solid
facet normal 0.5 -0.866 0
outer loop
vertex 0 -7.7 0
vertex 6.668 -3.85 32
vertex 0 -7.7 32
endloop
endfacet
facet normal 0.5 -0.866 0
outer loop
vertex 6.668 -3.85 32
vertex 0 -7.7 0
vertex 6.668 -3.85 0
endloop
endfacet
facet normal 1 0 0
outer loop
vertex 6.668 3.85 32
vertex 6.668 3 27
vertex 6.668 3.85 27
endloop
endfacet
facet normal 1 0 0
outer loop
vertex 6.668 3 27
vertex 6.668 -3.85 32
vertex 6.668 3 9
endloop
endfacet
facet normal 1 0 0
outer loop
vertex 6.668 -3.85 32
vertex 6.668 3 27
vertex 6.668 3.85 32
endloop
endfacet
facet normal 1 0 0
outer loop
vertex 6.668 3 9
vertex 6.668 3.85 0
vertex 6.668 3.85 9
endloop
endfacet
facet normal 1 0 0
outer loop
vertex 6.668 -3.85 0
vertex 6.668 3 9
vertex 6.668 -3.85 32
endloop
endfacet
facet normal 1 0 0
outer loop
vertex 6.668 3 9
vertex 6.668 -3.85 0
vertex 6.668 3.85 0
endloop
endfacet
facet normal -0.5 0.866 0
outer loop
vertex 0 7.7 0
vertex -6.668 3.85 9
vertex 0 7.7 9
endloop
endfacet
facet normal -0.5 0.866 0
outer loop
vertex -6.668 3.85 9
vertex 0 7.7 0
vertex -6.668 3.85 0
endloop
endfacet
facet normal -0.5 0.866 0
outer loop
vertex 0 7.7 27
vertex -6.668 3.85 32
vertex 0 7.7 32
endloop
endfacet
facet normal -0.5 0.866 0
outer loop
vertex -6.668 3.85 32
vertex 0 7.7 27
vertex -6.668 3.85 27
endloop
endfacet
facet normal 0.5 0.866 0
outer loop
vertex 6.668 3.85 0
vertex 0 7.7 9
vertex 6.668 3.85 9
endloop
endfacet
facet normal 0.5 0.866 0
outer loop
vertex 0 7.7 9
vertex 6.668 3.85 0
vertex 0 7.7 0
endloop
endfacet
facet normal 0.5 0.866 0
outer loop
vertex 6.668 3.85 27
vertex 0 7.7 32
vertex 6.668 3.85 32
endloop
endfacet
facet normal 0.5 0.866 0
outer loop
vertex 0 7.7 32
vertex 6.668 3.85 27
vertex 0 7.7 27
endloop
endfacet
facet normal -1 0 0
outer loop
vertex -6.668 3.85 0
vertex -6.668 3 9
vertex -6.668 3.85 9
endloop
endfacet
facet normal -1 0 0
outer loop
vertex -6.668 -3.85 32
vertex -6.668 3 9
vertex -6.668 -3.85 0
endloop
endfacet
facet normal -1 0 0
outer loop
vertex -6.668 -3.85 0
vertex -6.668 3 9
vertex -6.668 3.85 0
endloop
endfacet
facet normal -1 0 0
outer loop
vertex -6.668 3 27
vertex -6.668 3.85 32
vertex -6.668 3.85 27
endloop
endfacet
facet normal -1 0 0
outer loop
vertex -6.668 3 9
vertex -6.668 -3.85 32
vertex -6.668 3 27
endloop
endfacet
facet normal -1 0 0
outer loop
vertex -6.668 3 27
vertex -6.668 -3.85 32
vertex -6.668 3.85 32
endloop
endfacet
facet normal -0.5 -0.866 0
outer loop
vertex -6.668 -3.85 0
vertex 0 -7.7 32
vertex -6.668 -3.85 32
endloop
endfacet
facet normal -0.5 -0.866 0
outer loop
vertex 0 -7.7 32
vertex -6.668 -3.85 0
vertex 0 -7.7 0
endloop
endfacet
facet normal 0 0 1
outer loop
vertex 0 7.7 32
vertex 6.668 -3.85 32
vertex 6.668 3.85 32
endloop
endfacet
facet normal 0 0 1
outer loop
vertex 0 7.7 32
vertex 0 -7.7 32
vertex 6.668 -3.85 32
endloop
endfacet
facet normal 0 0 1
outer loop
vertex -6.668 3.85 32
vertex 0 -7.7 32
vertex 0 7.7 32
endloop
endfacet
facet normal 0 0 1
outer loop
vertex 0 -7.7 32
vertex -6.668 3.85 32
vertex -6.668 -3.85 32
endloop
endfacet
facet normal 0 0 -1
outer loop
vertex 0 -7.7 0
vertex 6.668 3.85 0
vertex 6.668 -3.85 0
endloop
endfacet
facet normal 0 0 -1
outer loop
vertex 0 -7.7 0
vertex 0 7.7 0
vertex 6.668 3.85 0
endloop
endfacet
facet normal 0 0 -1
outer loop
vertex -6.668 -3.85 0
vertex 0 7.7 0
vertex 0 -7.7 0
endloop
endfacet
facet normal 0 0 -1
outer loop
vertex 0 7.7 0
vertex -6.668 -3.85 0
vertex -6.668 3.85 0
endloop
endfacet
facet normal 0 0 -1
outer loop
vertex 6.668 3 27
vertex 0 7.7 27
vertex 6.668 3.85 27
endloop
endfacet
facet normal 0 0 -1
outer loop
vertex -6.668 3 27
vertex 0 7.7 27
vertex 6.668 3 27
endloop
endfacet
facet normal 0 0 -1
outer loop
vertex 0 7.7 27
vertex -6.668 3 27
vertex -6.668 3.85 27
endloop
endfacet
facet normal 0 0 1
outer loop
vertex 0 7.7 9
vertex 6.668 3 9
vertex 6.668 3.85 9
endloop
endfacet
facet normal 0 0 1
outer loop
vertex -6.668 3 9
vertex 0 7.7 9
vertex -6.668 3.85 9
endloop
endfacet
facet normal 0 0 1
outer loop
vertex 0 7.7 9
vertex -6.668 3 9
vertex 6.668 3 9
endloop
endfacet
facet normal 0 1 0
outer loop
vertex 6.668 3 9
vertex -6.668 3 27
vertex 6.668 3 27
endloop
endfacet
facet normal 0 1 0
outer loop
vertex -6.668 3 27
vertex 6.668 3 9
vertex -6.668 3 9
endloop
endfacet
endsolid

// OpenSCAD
length_inner = 9;
length_outer = 5;
length_center = 18;
length_total = length_center+length_outer+length_inner;
inner_diametr = 15.4;

deep_offset = -3;

difference() {
translate([0,0,length_total/2]) {
    rotate([0,0,30]) {
  cylinder(r=inner_diametr/2, h=length_total, center=true, $fn=6);
    }
}


translate([0,40/2-deep_offset,length_center/2+length_inner]) {
  cube([40, 40, length_center], center=true);
}


}
